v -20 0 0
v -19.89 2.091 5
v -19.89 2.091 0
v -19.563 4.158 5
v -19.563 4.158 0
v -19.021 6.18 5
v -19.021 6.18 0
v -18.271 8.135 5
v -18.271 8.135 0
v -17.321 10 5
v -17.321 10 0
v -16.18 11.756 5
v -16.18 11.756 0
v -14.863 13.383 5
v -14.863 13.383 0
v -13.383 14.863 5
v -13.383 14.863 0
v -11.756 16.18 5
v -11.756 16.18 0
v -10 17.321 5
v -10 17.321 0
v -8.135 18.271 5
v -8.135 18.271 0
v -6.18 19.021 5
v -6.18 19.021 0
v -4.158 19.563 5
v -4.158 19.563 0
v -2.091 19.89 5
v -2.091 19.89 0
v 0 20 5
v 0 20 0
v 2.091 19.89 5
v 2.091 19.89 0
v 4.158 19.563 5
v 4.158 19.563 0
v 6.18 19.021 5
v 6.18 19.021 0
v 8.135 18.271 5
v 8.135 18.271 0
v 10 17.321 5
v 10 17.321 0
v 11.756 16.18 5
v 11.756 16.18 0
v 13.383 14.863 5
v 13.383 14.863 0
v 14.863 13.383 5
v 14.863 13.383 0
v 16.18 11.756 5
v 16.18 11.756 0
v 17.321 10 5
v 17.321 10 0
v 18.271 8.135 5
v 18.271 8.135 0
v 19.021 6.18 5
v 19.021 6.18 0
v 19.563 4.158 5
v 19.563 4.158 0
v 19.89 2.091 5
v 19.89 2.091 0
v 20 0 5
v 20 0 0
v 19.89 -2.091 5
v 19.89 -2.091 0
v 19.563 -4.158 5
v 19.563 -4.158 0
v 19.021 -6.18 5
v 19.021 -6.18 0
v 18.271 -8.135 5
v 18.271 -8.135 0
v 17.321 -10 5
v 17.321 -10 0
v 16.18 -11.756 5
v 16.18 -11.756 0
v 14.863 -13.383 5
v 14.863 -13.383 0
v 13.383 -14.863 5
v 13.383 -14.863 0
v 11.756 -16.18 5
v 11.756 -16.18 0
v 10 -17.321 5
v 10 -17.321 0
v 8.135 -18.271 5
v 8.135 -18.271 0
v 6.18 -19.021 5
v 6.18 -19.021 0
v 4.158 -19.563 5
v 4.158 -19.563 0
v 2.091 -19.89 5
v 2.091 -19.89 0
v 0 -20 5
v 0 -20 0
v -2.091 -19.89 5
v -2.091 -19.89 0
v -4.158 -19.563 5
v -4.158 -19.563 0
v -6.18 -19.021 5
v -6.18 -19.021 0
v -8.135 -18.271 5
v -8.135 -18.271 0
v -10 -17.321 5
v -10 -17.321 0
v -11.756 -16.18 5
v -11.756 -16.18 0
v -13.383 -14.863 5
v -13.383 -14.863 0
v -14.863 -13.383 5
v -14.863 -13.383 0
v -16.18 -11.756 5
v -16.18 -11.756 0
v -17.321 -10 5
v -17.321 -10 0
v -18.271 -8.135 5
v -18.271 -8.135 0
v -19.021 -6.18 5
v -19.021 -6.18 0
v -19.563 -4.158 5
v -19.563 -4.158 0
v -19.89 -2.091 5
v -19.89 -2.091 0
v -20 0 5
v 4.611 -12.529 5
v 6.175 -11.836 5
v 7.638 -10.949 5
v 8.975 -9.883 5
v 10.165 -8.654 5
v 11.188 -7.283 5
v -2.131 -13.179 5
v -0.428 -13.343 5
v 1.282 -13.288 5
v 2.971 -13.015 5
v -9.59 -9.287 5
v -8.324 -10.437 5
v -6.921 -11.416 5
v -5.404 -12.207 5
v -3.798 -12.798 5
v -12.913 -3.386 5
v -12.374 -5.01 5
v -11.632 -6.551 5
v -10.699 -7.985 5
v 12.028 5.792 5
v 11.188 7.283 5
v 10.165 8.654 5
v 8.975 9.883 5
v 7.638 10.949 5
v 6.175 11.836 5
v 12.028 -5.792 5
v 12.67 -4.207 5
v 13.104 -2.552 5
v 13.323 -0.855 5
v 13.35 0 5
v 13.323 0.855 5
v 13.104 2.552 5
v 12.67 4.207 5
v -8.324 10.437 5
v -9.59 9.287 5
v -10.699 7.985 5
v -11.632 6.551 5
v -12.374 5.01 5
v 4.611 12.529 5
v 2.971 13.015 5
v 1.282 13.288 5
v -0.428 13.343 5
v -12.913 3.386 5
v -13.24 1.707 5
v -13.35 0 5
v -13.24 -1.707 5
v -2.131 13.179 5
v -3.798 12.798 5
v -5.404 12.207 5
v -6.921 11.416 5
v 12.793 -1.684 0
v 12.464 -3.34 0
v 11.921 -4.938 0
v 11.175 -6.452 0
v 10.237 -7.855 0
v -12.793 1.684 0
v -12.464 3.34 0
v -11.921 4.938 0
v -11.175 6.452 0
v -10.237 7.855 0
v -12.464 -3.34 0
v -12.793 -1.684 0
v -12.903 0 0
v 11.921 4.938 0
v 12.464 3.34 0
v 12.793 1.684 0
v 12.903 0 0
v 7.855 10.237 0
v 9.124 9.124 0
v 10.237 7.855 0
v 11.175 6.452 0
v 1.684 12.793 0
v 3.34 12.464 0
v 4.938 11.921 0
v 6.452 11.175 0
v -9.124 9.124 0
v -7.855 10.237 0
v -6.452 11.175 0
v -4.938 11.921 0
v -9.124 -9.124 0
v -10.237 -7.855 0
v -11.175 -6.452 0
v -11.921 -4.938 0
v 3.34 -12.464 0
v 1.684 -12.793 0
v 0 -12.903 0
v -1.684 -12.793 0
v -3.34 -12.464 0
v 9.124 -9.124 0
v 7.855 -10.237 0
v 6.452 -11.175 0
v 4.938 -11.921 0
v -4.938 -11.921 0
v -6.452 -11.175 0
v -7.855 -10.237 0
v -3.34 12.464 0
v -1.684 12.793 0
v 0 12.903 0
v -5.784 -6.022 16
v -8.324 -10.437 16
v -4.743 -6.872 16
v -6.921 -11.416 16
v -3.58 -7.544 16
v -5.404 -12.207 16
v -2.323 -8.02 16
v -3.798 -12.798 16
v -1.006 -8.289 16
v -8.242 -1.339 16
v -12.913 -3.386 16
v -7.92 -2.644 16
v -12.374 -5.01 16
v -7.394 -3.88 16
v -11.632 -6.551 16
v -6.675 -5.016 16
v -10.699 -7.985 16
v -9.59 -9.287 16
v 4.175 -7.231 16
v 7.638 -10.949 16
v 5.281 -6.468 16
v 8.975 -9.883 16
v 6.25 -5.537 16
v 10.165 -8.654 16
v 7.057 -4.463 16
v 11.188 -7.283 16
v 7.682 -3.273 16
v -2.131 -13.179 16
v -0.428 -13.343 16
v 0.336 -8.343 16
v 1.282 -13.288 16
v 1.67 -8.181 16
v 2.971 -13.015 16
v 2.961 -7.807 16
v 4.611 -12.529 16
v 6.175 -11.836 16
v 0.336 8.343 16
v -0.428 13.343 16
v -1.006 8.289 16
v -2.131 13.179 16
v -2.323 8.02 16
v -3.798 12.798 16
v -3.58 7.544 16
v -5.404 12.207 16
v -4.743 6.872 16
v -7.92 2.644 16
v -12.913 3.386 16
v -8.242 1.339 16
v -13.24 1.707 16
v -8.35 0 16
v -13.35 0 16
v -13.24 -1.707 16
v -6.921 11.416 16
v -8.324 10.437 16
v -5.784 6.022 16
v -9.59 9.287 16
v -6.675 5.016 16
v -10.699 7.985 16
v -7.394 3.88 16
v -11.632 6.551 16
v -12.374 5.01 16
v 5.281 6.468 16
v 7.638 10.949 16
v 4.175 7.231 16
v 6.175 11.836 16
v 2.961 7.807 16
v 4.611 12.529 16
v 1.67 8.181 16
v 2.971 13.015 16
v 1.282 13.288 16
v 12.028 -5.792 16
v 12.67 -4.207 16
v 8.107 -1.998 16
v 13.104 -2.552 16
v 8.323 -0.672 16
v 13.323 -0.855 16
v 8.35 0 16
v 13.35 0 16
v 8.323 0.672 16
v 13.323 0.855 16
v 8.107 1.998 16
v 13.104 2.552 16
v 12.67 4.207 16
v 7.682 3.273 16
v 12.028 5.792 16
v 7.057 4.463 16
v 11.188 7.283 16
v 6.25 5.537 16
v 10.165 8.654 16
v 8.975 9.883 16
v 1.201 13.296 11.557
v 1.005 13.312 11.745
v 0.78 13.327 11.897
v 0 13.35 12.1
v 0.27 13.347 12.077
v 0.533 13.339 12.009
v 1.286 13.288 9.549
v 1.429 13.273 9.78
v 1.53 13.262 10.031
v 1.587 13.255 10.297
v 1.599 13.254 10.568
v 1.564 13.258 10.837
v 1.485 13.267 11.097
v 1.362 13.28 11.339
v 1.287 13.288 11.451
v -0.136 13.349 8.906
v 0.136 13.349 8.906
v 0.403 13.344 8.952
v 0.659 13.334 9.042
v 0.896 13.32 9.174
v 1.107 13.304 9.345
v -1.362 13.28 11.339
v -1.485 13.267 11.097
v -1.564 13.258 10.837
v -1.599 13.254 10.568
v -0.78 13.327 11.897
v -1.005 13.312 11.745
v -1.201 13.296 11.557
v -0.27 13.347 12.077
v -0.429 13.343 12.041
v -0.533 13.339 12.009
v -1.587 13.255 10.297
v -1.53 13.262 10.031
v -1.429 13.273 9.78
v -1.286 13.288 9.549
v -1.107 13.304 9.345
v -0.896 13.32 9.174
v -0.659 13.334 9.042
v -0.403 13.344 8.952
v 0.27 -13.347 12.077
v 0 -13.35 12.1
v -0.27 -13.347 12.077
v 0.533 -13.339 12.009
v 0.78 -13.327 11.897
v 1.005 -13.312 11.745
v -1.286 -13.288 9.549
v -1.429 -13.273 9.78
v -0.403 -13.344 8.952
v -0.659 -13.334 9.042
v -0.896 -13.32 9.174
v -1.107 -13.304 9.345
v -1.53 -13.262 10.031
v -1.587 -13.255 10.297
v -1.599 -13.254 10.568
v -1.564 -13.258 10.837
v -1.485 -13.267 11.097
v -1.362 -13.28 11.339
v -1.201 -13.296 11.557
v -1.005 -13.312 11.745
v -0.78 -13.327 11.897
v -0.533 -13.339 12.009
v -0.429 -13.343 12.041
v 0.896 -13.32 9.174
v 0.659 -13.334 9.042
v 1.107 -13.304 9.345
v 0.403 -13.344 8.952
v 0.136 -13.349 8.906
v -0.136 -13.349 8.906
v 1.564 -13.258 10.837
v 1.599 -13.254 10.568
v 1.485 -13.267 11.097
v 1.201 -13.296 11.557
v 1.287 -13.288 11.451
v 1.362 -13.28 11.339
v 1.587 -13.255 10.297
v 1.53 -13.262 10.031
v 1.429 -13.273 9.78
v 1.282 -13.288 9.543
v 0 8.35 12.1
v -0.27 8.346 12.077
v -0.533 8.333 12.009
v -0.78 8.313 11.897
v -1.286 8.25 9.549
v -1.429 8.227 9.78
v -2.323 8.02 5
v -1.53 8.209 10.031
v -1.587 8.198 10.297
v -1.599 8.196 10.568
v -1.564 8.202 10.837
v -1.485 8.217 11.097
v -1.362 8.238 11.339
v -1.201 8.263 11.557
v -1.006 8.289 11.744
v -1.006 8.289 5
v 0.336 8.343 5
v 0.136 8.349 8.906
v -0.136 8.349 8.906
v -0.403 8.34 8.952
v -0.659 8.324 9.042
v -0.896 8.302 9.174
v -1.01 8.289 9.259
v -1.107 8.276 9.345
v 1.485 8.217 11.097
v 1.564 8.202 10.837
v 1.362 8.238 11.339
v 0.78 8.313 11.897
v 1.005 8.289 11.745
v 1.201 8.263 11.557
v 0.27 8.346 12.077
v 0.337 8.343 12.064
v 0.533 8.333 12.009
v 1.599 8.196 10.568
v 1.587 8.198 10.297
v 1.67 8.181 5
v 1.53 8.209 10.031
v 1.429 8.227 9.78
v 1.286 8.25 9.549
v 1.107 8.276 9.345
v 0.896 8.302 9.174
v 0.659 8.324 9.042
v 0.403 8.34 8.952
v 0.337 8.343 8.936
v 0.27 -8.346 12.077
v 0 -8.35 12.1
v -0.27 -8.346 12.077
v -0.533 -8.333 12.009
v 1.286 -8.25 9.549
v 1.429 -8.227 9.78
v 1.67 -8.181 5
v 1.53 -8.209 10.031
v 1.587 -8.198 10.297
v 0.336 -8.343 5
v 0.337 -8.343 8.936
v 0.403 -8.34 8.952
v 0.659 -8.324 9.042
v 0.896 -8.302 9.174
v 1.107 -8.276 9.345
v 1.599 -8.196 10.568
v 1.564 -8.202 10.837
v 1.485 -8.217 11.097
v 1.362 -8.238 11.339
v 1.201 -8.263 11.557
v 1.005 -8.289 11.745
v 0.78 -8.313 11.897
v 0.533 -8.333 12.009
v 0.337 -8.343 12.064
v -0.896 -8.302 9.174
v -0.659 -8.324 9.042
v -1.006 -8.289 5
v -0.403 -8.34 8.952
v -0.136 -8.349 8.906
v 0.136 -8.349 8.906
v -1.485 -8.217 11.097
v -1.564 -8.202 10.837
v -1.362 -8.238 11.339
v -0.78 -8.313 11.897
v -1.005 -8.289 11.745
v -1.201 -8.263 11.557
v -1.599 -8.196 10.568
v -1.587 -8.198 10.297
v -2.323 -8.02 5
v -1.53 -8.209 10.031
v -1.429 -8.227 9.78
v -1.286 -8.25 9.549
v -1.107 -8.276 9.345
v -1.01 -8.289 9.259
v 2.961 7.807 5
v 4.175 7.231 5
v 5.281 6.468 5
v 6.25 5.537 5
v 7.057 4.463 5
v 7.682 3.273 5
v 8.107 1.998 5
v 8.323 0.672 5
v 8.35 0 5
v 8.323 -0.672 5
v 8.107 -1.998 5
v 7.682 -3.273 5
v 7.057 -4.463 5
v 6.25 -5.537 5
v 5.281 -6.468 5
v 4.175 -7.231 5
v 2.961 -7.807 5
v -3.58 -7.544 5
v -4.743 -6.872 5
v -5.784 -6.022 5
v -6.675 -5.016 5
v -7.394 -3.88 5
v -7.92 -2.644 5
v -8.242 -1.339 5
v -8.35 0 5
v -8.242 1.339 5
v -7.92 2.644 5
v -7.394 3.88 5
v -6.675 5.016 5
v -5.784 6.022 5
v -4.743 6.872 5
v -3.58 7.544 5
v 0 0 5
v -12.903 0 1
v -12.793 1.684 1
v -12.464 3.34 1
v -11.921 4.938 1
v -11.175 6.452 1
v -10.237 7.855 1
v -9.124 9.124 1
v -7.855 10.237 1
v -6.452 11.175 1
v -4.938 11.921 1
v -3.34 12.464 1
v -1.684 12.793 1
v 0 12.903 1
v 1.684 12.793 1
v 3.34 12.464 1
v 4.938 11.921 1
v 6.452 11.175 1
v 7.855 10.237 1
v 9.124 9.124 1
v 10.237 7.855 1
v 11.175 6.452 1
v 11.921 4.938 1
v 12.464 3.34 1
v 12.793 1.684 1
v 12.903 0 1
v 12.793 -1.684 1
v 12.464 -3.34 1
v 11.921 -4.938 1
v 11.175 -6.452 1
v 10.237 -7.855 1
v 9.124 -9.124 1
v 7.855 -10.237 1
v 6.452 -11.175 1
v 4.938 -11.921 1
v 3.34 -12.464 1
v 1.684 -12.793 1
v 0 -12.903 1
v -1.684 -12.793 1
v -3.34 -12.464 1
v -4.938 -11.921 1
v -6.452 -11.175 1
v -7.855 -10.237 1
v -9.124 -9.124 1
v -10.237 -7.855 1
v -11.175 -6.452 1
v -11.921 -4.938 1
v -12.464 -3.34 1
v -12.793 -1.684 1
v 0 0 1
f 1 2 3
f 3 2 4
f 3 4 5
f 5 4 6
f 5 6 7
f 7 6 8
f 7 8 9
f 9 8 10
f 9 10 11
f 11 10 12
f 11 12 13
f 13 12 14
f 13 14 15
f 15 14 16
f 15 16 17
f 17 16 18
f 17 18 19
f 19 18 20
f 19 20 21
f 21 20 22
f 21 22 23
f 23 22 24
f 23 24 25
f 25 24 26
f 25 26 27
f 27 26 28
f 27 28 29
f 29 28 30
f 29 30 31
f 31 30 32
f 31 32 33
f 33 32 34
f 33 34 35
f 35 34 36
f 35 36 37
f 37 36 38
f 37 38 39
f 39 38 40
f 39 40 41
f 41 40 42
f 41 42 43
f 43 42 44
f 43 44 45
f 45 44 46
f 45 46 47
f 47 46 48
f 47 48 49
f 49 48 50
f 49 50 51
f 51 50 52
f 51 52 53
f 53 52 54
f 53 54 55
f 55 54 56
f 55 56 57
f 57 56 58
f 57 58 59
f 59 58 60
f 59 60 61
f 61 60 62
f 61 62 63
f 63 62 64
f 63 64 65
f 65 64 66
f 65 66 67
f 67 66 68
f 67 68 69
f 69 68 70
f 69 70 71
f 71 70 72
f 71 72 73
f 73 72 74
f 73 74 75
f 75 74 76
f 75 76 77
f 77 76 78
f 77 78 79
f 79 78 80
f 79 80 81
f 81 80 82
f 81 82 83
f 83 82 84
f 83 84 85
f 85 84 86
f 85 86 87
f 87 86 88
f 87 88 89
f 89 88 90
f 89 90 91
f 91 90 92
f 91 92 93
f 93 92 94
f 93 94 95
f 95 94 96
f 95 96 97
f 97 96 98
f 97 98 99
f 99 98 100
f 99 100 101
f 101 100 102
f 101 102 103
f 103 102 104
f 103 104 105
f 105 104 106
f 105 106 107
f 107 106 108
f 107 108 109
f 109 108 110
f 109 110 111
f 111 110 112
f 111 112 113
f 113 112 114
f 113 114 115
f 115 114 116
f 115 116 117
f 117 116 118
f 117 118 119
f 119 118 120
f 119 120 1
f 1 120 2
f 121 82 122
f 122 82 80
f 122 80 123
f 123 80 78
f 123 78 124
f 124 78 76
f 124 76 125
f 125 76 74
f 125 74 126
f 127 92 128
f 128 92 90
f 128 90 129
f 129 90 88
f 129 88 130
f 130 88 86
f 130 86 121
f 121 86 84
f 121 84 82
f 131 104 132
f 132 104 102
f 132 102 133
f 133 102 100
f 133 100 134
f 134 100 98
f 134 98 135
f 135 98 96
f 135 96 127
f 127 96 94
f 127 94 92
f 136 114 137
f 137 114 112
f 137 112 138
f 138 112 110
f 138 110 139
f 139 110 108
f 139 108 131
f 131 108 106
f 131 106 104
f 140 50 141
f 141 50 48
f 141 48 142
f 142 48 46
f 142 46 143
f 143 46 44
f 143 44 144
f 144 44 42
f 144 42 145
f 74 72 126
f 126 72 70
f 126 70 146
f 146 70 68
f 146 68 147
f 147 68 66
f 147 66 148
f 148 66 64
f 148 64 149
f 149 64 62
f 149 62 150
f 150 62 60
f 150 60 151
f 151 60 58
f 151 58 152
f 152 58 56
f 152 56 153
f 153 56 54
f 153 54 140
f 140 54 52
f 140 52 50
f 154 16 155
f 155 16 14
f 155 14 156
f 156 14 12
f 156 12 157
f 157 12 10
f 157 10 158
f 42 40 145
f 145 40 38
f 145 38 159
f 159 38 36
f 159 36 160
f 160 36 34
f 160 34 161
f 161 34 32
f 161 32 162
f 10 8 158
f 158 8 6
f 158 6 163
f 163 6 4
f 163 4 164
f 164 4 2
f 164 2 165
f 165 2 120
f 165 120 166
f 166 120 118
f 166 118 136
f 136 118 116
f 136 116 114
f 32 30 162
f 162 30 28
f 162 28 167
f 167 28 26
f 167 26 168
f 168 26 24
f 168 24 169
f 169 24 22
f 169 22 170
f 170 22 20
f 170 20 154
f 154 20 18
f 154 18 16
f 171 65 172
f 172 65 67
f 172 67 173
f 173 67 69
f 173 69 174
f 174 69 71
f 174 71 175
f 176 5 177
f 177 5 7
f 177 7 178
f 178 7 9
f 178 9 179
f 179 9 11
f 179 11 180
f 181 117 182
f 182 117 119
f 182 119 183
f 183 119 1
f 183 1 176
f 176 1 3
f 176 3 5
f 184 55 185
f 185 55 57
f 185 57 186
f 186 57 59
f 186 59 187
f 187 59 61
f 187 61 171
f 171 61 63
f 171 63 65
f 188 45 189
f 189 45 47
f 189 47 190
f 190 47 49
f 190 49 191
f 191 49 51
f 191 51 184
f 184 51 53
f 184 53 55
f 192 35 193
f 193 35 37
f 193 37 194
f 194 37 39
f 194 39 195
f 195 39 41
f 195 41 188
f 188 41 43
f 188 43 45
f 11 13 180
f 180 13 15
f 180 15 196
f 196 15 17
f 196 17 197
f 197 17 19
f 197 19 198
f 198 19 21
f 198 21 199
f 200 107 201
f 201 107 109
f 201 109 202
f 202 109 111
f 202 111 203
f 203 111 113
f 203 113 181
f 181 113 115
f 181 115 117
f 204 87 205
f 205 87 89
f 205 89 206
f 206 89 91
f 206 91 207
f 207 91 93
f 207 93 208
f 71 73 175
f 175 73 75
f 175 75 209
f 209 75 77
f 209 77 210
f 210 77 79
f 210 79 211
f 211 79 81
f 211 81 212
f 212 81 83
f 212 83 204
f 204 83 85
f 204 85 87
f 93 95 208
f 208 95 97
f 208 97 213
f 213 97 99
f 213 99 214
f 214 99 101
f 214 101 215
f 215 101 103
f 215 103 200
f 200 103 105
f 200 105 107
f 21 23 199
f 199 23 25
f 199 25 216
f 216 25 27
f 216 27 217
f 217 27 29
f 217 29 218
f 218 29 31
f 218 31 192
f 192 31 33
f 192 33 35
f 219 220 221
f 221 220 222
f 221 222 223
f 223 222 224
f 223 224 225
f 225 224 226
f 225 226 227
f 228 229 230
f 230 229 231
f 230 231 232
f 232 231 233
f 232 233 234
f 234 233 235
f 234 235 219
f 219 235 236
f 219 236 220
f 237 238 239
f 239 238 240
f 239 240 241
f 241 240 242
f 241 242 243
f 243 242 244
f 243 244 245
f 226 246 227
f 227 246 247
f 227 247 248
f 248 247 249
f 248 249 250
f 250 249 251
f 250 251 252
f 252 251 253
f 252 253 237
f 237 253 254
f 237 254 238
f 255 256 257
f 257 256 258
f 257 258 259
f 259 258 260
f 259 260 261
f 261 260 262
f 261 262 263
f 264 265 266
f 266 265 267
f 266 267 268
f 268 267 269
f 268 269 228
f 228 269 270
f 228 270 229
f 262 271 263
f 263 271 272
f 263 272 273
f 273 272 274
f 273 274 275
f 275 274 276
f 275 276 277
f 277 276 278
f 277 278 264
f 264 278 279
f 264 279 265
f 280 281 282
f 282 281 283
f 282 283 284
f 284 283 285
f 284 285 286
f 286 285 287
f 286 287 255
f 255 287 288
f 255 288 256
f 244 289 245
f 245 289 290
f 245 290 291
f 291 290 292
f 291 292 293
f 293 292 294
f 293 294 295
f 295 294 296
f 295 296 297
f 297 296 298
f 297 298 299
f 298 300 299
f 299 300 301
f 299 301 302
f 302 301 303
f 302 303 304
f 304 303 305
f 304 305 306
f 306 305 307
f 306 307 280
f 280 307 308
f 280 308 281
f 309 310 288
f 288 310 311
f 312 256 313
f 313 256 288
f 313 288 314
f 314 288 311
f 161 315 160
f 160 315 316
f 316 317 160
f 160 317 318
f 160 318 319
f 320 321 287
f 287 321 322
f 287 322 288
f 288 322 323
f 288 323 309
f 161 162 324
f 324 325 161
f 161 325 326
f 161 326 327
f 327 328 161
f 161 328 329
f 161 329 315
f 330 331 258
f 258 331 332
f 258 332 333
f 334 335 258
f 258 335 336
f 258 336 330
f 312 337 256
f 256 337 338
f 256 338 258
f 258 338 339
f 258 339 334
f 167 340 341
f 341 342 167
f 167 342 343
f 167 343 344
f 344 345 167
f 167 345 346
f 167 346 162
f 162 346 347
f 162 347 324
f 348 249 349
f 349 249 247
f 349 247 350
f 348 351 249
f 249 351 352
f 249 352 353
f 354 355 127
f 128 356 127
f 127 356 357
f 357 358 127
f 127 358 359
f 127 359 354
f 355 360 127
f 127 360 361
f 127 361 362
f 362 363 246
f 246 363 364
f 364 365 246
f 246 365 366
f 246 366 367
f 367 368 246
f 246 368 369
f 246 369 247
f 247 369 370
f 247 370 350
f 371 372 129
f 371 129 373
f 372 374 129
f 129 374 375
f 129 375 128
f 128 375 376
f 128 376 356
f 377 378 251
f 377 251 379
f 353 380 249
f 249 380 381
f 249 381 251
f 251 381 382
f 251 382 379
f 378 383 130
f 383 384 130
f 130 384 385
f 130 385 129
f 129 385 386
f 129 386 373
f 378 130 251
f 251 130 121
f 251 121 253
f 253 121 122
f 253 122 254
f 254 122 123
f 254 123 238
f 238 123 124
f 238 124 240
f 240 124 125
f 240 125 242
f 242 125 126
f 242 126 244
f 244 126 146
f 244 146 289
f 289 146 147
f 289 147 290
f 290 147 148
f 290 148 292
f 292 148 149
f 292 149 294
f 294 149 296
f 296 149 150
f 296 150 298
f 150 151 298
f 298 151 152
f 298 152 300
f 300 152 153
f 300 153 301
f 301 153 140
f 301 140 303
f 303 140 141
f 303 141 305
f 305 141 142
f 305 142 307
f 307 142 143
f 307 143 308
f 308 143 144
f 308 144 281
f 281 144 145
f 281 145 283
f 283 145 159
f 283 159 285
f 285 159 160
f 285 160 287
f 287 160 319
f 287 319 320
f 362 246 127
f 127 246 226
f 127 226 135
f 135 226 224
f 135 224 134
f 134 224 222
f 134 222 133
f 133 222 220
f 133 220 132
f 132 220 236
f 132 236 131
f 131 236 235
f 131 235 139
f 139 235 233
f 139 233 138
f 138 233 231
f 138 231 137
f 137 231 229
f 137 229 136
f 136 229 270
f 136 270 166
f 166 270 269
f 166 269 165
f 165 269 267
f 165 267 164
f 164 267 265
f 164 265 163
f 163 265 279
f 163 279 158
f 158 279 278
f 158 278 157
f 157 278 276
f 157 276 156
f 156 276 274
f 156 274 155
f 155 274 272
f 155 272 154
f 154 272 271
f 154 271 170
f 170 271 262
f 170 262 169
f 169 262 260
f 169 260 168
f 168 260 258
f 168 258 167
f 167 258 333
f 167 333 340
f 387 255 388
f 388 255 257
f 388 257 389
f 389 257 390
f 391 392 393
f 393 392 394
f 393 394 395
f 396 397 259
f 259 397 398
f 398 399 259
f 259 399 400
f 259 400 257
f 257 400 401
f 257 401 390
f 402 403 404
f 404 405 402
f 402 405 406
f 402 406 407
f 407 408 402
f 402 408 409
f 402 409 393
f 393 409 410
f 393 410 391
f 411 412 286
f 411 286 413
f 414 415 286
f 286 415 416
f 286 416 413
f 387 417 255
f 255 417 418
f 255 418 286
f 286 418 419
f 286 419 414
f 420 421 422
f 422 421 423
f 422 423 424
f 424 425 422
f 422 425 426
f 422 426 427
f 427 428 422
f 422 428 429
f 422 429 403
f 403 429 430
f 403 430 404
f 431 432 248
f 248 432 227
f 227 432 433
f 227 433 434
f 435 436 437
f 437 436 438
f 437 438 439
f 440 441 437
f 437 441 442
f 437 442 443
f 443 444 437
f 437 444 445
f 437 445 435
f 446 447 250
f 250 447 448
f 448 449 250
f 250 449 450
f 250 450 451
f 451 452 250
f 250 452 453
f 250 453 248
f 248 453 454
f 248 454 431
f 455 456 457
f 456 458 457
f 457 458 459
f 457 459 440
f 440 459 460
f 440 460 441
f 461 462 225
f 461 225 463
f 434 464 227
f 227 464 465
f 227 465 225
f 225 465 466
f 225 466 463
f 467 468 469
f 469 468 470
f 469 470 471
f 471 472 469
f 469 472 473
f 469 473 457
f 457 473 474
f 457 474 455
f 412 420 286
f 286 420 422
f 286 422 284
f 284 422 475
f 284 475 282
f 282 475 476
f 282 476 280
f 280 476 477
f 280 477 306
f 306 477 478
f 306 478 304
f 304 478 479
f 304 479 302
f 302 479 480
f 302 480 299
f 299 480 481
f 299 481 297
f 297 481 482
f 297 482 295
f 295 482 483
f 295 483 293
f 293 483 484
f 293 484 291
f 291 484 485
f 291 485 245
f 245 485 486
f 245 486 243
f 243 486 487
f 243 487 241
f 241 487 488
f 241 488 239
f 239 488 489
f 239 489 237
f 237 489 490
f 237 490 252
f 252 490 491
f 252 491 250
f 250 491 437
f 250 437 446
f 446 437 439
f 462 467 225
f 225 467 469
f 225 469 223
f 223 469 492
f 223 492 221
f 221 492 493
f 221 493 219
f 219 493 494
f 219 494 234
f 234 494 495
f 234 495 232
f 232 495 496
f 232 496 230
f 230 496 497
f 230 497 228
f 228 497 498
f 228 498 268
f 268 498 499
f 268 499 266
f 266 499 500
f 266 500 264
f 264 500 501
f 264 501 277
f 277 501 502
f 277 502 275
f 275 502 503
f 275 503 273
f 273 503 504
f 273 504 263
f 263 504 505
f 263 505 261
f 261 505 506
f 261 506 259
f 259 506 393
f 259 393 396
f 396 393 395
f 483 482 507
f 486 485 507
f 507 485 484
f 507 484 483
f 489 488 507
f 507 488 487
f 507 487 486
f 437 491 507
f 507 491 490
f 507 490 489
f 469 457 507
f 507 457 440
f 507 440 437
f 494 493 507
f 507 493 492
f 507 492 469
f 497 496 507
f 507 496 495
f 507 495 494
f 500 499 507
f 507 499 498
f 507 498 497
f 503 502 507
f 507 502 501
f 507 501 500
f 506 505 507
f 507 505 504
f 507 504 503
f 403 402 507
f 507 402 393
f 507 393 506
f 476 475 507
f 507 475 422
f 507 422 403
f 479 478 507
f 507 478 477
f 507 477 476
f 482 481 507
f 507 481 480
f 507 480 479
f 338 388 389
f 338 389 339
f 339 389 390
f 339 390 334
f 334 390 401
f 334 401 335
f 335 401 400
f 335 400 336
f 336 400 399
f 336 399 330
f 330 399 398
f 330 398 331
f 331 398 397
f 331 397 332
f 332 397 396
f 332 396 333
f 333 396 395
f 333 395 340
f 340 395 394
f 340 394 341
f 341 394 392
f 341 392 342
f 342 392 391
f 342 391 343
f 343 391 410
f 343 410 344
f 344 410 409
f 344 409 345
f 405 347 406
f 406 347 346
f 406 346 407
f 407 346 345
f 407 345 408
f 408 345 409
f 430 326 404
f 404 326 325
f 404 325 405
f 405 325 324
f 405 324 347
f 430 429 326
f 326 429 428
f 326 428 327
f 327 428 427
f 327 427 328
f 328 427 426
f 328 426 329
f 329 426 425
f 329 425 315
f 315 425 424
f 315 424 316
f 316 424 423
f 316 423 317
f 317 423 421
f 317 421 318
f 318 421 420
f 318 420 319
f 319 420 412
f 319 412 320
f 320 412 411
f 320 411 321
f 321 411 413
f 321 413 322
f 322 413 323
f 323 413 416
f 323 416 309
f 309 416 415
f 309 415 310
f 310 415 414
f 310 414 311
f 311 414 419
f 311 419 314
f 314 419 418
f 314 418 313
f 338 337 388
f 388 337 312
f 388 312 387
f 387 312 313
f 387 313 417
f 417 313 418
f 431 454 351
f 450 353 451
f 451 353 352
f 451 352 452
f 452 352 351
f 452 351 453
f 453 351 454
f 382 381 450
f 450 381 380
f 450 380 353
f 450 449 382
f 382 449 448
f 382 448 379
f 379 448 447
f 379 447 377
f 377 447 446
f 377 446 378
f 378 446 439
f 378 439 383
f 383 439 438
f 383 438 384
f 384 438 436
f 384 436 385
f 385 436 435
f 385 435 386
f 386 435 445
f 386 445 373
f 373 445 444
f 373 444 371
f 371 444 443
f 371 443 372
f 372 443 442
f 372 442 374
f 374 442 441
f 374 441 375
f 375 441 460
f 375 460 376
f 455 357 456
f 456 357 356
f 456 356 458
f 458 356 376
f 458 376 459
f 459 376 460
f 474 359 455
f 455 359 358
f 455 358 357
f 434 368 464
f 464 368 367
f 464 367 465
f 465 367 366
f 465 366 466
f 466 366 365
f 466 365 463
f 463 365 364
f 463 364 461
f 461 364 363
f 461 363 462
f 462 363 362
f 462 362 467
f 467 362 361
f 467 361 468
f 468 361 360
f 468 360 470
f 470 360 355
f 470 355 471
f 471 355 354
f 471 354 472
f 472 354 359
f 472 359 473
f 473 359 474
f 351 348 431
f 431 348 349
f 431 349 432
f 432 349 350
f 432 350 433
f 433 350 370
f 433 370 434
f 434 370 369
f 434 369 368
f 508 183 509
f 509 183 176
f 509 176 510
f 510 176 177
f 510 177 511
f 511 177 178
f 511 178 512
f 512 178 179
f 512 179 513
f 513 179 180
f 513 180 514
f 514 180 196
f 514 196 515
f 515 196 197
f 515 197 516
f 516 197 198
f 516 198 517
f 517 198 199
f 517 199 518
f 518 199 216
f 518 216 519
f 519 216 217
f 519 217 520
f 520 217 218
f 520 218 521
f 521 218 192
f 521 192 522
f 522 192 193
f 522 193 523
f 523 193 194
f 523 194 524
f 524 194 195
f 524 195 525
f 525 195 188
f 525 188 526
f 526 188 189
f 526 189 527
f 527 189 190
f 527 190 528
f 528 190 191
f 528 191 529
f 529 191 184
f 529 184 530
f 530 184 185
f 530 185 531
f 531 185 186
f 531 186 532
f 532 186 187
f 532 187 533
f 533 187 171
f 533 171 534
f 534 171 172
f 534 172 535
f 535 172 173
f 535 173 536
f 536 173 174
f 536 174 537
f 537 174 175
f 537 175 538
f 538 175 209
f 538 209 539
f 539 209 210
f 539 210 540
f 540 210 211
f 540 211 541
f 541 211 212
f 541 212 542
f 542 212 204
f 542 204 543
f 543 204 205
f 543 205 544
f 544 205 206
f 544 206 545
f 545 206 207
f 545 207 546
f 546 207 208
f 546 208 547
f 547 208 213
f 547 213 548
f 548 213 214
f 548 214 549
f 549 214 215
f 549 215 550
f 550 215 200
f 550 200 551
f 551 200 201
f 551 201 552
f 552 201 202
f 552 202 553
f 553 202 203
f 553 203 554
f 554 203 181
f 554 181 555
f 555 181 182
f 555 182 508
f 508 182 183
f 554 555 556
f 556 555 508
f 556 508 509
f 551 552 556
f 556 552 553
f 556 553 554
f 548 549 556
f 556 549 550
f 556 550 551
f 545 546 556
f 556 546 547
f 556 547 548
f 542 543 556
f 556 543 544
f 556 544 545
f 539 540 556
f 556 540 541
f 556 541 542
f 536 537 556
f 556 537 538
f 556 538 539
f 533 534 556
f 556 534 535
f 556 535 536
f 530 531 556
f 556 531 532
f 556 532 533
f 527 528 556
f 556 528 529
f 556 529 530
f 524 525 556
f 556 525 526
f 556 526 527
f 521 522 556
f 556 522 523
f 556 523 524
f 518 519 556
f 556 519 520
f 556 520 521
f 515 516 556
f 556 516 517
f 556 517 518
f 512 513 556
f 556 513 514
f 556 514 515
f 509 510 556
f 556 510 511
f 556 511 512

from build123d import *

# Parameters (mm, degrees)
CROQUIS1_R              = 20
SALIENTE_EXTRUIR1_DEPTH = 5
CROQUIS2_R              = 13.35
CROQUIS2_R_2            = 8.35
SALIENTE_EXTRUIR2_DEPTH = 11
CROQUIS3_R              = 1.6
CORTAR_EXTRUIR1_DEPTH   = 20
CROQUIS4_R              = 12.903487901
CORTAR_EXTRUIR3_DEPTH   = 1


with BuildPart() as part:
    # Croquis1 → Saliente-Extruir1 (new body)
    with BuildSketch(Plane.XY):
        Circle(CROQUIS1_R)
    extrude(amount=SALIENTE_EXTRUIR1_DEPTH)

    # Croquis2 → Saliente-Extruir2 (add)
    with BuildSketch(Plane.XY.offset(5)):
        Circle(CROQUIS2_R)
        Circle(CROQUIS2_R_2, mode=Mode.SUBTRACT)
    extrude(amount=SALIENTE_EXTRUIR2_DEPTH)

    # Croquis3 → Cortar-Extruir1 (cut, symmetric)
    with BuildSketch(Plane(origin=(0, 0, 0), x_dir=(1, 0, 0), z_dir=(0, 1, 0))):
        with Locations(Location((0, -10.5, 0), (0, 0, 270))):
            Circle(CROQUIS3_R)
    extrude(amount=CORTAR_EXTRUIR1_DEPTH, both=True, mode=Mode.SUBTRACT)

    # Croquis4 → Cortar-Extruir3 (cut)
    with BuildSketch(Plane(origin=(0, 0, 0), x_dir=(-1, 0, 0), z_dir=(0, 0, -1))):
        Circle(CROQUIS4_R)
    extrude(amount=-CORTAR_EXTRUIR3_DEPTH, mode=Mode.SUBTRACT)


solid = part.part
